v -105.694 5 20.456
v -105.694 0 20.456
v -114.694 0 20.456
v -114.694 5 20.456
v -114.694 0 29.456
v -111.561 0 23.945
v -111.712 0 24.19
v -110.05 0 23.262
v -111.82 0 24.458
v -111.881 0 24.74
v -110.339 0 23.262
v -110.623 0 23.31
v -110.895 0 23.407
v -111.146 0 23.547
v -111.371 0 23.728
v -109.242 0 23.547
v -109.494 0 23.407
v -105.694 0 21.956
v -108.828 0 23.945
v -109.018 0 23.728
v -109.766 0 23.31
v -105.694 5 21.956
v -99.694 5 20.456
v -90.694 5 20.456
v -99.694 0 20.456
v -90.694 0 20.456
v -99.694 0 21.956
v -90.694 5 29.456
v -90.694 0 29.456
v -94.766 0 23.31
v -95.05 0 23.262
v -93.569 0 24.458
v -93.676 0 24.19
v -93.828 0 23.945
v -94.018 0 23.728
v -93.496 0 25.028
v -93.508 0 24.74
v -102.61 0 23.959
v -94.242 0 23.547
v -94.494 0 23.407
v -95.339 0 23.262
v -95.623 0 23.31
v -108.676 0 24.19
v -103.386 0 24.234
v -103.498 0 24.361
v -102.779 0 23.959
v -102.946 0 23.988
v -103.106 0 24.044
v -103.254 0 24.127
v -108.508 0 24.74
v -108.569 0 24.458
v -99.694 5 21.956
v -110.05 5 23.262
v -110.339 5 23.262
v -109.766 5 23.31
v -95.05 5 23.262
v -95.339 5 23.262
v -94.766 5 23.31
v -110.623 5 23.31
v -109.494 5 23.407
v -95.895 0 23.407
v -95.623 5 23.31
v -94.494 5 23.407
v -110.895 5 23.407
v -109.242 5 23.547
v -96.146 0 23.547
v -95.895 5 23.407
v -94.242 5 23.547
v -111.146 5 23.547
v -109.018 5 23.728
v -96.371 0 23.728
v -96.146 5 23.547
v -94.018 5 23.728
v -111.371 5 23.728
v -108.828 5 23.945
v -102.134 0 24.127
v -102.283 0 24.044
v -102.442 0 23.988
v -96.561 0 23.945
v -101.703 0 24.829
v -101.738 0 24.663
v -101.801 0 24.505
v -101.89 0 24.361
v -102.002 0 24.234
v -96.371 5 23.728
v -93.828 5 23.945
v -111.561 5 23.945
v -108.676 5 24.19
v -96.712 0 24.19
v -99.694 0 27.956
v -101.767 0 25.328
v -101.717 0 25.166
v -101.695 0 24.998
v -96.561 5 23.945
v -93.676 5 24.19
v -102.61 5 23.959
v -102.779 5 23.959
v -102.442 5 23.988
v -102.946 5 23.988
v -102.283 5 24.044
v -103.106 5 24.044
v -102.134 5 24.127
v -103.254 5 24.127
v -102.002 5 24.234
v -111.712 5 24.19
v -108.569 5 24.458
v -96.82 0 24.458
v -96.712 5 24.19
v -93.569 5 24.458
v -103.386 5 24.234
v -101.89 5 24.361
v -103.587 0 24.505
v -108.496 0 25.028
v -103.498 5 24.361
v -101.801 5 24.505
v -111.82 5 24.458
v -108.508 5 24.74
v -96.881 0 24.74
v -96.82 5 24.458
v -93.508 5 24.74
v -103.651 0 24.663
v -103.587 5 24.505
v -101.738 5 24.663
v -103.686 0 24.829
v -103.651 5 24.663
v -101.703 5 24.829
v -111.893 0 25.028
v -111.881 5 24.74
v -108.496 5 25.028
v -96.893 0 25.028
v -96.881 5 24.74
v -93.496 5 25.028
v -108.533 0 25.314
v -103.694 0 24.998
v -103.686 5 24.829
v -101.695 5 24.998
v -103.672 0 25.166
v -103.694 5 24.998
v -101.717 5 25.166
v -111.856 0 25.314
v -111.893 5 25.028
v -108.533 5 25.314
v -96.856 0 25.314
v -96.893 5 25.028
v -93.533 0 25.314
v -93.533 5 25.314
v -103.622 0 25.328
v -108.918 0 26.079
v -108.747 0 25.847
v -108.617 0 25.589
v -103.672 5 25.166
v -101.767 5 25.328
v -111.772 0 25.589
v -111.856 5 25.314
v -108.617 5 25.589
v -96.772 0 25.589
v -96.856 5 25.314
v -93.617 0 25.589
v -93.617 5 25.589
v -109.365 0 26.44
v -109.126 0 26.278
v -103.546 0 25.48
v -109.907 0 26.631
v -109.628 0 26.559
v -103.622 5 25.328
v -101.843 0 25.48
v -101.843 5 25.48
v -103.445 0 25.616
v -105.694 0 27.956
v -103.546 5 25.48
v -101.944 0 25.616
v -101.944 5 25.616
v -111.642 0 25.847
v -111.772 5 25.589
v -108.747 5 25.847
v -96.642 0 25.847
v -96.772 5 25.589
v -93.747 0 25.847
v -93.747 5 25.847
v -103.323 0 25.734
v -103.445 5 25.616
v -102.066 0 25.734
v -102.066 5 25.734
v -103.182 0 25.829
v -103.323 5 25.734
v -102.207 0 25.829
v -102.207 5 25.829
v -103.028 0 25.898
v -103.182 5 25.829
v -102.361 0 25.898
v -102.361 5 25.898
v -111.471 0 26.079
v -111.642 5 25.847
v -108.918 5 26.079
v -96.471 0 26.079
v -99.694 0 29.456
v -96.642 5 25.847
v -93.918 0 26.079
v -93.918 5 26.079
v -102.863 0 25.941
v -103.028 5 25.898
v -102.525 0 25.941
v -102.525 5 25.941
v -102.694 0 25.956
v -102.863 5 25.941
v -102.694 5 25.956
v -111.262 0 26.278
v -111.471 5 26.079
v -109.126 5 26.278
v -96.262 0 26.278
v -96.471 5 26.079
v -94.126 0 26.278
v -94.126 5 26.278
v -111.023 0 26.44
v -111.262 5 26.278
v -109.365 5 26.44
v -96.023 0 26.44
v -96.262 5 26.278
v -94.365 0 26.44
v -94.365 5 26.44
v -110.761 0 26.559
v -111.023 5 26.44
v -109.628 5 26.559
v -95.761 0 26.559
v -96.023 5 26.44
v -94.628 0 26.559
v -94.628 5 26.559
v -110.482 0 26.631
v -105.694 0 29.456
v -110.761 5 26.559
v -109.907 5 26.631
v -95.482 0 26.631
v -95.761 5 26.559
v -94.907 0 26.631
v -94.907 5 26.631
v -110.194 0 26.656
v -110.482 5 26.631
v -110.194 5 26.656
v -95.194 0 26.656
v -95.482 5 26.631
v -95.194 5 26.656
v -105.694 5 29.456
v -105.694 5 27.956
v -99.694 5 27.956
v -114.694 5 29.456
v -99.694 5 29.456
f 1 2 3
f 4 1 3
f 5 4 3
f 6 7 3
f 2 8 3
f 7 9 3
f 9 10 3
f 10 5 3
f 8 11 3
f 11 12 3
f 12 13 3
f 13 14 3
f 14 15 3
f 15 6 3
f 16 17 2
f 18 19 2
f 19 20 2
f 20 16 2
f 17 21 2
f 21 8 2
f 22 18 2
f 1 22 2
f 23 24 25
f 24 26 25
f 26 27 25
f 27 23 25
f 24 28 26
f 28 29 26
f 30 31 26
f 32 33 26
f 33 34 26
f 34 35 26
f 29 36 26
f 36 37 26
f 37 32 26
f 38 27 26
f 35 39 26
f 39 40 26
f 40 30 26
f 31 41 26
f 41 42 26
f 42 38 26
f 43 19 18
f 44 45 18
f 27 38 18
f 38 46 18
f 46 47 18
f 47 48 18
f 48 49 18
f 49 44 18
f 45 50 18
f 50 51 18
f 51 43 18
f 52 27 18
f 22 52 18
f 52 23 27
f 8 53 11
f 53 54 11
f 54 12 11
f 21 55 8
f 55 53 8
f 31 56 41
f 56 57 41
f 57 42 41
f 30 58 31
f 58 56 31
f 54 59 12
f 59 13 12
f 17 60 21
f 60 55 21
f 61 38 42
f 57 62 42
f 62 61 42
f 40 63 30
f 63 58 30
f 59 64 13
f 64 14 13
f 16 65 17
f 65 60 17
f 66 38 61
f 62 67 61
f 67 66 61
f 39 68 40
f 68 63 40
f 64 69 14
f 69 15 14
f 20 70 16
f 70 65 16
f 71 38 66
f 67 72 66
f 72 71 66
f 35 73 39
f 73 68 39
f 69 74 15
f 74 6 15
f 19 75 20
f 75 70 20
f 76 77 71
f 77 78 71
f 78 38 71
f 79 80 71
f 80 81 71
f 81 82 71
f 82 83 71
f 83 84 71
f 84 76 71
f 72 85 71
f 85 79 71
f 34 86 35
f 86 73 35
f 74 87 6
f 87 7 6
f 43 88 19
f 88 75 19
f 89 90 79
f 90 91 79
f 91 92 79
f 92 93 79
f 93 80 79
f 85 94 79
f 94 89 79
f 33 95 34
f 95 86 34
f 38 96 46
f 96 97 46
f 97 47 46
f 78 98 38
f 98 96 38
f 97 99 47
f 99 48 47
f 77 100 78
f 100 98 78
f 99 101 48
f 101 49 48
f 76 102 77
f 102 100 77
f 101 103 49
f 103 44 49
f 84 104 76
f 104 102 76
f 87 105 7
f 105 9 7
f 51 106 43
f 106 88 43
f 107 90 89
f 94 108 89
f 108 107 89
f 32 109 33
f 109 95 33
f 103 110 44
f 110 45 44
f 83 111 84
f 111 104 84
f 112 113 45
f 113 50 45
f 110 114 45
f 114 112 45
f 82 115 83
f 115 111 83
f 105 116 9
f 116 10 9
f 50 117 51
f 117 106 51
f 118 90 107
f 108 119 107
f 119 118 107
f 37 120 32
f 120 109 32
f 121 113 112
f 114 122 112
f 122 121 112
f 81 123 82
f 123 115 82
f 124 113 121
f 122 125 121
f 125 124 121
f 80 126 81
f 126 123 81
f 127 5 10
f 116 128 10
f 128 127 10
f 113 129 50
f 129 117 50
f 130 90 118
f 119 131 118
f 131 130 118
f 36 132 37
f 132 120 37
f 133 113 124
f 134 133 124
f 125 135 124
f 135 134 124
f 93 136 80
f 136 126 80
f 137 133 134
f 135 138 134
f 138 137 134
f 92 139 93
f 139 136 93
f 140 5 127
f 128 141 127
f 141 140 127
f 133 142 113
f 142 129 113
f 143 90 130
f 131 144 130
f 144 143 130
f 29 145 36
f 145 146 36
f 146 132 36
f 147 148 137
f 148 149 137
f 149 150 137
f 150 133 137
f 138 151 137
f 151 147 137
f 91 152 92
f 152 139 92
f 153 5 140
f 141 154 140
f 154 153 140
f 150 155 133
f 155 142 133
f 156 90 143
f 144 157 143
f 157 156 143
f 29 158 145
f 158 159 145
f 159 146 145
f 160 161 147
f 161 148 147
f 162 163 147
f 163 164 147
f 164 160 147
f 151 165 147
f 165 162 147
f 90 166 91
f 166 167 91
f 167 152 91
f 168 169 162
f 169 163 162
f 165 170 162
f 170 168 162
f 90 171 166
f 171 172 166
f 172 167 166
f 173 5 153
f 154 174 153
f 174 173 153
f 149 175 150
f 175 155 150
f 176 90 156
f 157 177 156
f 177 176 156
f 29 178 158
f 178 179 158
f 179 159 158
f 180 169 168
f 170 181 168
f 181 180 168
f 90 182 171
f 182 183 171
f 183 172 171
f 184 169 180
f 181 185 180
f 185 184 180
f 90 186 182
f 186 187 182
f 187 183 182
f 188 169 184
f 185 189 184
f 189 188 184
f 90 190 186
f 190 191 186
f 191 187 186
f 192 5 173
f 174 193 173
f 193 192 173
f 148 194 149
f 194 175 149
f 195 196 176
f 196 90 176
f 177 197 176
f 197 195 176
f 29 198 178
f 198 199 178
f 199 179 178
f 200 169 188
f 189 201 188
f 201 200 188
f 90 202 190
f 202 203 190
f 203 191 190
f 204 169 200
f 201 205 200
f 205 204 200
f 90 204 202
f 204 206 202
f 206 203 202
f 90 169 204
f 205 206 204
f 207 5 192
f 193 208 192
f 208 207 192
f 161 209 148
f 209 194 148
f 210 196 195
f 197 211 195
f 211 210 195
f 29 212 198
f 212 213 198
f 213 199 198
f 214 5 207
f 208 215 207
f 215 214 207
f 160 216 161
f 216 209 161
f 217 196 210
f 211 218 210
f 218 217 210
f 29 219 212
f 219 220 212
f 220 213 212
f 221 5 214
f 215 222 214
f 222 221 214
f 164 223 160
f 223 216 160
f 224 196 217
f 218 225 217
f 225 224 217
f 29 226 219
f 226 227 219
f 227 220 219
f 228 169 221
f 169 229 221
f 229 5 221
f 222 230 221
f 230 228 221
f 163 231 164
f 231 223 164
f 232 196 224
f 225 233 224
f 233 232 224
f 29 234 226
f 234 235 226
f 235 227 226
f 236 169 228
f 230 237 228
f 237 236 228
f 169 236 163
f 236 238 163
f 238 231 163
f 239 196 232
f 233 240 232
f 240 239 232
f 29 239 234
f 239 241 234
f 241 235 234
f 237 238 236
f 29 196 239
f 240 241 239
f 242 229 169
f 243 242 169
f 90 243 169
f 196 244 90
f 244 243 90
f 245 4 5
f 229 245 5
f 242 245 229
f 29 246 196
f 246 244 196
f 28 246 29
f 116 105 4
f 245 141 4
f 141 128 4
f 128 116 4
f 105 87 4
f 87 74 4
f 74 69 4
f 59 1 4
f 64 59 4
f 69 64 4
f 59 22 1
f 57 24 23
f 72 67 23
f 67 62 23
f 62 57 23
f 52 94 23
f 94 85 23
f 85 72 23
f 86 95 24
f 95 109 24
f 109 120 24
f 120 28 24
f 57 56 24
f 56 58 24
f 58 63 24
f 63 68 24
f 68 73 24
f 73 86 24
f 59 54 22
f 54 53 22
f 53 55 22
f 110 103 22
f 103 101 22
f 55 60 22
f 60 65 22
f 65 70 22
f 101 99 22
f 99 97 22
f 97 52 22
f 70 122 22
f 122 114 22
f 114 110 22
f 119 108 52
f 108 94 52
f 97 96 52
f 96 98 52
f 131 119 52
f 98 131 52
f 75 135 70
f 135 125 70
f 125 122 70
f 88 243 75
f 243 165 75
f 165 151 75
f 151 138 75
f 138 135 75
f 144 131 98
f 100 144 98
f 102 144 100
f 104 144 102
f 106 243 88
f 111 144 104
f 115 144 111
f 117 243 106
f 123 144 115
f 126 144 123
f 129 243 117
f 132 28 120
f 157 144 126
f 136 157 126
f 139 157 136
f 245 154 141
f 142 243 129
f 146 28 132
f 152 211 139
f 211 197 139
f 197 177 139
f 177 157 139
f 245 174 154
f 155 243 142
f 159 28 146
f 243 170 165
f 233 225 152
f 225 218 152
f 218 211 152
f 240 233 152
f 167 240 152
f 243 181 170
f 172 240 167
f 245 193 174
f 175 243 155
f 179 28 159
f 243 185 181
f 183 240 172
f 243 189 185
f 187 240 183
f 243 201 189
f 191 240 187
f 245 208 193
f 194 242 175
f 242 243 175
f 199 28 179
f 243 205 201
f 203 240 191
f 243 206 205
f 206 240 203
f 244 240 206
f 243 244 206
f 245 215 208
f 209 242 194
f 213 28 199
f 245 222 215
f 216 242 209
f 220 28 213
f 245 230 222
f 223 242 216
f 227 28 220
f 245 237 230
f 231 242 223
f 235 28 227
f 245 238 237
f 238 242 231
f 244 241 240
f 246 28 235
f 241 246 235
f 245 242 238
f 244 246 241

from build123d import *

# Parameters (mm, degrees)
SKETCH3_W           = 24
SKETCH3_H           = 9
BOSS_EXTRUDE2_DEPTH = 5
SKETCH4_R           = 1.7
SKETCH4_R_2         = 1
SKETCH4_W           = 6
SKETCH4_H           = 1.5
CUT_EXTRUDE1_DEPTH  = 5


with BuildPart() as part:
    # Sketch3 → Boss-Extrude2 (new body)
    with BuildSketch(Plane(origin=(0, 0, 0), x_dir=(1, 0, 0), z_dir=(0, 1, 0))):
        with Locations((-102.694405771, -24.955608755)):
            Rectangle(SKETCH3_W, SKETCH3_H)
    extrude(amount=BOSS_EXTRUDE2_DEPTH)

    # Sketch4 → Cut-Extrude1 (cut)
    with BuildSketch(Plane(origin=(0, 5, 0), x_dir=(1, 0, 0), z_dir=(0, 1, 0))):
        with Locations((-110.194405771, -24.955608755)):
            Circle(SKETCH4_R)
        with Locations((-95.194405771, -24.955608755)):
            Circle(SKETCH4_R)
        with Locations((-102.694405771, -24.955608755)):
            Circle(SKETCH4_R_2)
        with Locations((-102.694405771, -28.705608755)):
            Rectangle(SKETCH4_W, SKETCH4_H)
        with Locations((-102.694405771, -21.205608755)):
            Rectangle(SKETCH4_W, SKETCH4_H)
    extrude(amount=-CUT_EXTRUDE1_DEPTH, mode=Mode.SUBTRACT)


solid = part.part
